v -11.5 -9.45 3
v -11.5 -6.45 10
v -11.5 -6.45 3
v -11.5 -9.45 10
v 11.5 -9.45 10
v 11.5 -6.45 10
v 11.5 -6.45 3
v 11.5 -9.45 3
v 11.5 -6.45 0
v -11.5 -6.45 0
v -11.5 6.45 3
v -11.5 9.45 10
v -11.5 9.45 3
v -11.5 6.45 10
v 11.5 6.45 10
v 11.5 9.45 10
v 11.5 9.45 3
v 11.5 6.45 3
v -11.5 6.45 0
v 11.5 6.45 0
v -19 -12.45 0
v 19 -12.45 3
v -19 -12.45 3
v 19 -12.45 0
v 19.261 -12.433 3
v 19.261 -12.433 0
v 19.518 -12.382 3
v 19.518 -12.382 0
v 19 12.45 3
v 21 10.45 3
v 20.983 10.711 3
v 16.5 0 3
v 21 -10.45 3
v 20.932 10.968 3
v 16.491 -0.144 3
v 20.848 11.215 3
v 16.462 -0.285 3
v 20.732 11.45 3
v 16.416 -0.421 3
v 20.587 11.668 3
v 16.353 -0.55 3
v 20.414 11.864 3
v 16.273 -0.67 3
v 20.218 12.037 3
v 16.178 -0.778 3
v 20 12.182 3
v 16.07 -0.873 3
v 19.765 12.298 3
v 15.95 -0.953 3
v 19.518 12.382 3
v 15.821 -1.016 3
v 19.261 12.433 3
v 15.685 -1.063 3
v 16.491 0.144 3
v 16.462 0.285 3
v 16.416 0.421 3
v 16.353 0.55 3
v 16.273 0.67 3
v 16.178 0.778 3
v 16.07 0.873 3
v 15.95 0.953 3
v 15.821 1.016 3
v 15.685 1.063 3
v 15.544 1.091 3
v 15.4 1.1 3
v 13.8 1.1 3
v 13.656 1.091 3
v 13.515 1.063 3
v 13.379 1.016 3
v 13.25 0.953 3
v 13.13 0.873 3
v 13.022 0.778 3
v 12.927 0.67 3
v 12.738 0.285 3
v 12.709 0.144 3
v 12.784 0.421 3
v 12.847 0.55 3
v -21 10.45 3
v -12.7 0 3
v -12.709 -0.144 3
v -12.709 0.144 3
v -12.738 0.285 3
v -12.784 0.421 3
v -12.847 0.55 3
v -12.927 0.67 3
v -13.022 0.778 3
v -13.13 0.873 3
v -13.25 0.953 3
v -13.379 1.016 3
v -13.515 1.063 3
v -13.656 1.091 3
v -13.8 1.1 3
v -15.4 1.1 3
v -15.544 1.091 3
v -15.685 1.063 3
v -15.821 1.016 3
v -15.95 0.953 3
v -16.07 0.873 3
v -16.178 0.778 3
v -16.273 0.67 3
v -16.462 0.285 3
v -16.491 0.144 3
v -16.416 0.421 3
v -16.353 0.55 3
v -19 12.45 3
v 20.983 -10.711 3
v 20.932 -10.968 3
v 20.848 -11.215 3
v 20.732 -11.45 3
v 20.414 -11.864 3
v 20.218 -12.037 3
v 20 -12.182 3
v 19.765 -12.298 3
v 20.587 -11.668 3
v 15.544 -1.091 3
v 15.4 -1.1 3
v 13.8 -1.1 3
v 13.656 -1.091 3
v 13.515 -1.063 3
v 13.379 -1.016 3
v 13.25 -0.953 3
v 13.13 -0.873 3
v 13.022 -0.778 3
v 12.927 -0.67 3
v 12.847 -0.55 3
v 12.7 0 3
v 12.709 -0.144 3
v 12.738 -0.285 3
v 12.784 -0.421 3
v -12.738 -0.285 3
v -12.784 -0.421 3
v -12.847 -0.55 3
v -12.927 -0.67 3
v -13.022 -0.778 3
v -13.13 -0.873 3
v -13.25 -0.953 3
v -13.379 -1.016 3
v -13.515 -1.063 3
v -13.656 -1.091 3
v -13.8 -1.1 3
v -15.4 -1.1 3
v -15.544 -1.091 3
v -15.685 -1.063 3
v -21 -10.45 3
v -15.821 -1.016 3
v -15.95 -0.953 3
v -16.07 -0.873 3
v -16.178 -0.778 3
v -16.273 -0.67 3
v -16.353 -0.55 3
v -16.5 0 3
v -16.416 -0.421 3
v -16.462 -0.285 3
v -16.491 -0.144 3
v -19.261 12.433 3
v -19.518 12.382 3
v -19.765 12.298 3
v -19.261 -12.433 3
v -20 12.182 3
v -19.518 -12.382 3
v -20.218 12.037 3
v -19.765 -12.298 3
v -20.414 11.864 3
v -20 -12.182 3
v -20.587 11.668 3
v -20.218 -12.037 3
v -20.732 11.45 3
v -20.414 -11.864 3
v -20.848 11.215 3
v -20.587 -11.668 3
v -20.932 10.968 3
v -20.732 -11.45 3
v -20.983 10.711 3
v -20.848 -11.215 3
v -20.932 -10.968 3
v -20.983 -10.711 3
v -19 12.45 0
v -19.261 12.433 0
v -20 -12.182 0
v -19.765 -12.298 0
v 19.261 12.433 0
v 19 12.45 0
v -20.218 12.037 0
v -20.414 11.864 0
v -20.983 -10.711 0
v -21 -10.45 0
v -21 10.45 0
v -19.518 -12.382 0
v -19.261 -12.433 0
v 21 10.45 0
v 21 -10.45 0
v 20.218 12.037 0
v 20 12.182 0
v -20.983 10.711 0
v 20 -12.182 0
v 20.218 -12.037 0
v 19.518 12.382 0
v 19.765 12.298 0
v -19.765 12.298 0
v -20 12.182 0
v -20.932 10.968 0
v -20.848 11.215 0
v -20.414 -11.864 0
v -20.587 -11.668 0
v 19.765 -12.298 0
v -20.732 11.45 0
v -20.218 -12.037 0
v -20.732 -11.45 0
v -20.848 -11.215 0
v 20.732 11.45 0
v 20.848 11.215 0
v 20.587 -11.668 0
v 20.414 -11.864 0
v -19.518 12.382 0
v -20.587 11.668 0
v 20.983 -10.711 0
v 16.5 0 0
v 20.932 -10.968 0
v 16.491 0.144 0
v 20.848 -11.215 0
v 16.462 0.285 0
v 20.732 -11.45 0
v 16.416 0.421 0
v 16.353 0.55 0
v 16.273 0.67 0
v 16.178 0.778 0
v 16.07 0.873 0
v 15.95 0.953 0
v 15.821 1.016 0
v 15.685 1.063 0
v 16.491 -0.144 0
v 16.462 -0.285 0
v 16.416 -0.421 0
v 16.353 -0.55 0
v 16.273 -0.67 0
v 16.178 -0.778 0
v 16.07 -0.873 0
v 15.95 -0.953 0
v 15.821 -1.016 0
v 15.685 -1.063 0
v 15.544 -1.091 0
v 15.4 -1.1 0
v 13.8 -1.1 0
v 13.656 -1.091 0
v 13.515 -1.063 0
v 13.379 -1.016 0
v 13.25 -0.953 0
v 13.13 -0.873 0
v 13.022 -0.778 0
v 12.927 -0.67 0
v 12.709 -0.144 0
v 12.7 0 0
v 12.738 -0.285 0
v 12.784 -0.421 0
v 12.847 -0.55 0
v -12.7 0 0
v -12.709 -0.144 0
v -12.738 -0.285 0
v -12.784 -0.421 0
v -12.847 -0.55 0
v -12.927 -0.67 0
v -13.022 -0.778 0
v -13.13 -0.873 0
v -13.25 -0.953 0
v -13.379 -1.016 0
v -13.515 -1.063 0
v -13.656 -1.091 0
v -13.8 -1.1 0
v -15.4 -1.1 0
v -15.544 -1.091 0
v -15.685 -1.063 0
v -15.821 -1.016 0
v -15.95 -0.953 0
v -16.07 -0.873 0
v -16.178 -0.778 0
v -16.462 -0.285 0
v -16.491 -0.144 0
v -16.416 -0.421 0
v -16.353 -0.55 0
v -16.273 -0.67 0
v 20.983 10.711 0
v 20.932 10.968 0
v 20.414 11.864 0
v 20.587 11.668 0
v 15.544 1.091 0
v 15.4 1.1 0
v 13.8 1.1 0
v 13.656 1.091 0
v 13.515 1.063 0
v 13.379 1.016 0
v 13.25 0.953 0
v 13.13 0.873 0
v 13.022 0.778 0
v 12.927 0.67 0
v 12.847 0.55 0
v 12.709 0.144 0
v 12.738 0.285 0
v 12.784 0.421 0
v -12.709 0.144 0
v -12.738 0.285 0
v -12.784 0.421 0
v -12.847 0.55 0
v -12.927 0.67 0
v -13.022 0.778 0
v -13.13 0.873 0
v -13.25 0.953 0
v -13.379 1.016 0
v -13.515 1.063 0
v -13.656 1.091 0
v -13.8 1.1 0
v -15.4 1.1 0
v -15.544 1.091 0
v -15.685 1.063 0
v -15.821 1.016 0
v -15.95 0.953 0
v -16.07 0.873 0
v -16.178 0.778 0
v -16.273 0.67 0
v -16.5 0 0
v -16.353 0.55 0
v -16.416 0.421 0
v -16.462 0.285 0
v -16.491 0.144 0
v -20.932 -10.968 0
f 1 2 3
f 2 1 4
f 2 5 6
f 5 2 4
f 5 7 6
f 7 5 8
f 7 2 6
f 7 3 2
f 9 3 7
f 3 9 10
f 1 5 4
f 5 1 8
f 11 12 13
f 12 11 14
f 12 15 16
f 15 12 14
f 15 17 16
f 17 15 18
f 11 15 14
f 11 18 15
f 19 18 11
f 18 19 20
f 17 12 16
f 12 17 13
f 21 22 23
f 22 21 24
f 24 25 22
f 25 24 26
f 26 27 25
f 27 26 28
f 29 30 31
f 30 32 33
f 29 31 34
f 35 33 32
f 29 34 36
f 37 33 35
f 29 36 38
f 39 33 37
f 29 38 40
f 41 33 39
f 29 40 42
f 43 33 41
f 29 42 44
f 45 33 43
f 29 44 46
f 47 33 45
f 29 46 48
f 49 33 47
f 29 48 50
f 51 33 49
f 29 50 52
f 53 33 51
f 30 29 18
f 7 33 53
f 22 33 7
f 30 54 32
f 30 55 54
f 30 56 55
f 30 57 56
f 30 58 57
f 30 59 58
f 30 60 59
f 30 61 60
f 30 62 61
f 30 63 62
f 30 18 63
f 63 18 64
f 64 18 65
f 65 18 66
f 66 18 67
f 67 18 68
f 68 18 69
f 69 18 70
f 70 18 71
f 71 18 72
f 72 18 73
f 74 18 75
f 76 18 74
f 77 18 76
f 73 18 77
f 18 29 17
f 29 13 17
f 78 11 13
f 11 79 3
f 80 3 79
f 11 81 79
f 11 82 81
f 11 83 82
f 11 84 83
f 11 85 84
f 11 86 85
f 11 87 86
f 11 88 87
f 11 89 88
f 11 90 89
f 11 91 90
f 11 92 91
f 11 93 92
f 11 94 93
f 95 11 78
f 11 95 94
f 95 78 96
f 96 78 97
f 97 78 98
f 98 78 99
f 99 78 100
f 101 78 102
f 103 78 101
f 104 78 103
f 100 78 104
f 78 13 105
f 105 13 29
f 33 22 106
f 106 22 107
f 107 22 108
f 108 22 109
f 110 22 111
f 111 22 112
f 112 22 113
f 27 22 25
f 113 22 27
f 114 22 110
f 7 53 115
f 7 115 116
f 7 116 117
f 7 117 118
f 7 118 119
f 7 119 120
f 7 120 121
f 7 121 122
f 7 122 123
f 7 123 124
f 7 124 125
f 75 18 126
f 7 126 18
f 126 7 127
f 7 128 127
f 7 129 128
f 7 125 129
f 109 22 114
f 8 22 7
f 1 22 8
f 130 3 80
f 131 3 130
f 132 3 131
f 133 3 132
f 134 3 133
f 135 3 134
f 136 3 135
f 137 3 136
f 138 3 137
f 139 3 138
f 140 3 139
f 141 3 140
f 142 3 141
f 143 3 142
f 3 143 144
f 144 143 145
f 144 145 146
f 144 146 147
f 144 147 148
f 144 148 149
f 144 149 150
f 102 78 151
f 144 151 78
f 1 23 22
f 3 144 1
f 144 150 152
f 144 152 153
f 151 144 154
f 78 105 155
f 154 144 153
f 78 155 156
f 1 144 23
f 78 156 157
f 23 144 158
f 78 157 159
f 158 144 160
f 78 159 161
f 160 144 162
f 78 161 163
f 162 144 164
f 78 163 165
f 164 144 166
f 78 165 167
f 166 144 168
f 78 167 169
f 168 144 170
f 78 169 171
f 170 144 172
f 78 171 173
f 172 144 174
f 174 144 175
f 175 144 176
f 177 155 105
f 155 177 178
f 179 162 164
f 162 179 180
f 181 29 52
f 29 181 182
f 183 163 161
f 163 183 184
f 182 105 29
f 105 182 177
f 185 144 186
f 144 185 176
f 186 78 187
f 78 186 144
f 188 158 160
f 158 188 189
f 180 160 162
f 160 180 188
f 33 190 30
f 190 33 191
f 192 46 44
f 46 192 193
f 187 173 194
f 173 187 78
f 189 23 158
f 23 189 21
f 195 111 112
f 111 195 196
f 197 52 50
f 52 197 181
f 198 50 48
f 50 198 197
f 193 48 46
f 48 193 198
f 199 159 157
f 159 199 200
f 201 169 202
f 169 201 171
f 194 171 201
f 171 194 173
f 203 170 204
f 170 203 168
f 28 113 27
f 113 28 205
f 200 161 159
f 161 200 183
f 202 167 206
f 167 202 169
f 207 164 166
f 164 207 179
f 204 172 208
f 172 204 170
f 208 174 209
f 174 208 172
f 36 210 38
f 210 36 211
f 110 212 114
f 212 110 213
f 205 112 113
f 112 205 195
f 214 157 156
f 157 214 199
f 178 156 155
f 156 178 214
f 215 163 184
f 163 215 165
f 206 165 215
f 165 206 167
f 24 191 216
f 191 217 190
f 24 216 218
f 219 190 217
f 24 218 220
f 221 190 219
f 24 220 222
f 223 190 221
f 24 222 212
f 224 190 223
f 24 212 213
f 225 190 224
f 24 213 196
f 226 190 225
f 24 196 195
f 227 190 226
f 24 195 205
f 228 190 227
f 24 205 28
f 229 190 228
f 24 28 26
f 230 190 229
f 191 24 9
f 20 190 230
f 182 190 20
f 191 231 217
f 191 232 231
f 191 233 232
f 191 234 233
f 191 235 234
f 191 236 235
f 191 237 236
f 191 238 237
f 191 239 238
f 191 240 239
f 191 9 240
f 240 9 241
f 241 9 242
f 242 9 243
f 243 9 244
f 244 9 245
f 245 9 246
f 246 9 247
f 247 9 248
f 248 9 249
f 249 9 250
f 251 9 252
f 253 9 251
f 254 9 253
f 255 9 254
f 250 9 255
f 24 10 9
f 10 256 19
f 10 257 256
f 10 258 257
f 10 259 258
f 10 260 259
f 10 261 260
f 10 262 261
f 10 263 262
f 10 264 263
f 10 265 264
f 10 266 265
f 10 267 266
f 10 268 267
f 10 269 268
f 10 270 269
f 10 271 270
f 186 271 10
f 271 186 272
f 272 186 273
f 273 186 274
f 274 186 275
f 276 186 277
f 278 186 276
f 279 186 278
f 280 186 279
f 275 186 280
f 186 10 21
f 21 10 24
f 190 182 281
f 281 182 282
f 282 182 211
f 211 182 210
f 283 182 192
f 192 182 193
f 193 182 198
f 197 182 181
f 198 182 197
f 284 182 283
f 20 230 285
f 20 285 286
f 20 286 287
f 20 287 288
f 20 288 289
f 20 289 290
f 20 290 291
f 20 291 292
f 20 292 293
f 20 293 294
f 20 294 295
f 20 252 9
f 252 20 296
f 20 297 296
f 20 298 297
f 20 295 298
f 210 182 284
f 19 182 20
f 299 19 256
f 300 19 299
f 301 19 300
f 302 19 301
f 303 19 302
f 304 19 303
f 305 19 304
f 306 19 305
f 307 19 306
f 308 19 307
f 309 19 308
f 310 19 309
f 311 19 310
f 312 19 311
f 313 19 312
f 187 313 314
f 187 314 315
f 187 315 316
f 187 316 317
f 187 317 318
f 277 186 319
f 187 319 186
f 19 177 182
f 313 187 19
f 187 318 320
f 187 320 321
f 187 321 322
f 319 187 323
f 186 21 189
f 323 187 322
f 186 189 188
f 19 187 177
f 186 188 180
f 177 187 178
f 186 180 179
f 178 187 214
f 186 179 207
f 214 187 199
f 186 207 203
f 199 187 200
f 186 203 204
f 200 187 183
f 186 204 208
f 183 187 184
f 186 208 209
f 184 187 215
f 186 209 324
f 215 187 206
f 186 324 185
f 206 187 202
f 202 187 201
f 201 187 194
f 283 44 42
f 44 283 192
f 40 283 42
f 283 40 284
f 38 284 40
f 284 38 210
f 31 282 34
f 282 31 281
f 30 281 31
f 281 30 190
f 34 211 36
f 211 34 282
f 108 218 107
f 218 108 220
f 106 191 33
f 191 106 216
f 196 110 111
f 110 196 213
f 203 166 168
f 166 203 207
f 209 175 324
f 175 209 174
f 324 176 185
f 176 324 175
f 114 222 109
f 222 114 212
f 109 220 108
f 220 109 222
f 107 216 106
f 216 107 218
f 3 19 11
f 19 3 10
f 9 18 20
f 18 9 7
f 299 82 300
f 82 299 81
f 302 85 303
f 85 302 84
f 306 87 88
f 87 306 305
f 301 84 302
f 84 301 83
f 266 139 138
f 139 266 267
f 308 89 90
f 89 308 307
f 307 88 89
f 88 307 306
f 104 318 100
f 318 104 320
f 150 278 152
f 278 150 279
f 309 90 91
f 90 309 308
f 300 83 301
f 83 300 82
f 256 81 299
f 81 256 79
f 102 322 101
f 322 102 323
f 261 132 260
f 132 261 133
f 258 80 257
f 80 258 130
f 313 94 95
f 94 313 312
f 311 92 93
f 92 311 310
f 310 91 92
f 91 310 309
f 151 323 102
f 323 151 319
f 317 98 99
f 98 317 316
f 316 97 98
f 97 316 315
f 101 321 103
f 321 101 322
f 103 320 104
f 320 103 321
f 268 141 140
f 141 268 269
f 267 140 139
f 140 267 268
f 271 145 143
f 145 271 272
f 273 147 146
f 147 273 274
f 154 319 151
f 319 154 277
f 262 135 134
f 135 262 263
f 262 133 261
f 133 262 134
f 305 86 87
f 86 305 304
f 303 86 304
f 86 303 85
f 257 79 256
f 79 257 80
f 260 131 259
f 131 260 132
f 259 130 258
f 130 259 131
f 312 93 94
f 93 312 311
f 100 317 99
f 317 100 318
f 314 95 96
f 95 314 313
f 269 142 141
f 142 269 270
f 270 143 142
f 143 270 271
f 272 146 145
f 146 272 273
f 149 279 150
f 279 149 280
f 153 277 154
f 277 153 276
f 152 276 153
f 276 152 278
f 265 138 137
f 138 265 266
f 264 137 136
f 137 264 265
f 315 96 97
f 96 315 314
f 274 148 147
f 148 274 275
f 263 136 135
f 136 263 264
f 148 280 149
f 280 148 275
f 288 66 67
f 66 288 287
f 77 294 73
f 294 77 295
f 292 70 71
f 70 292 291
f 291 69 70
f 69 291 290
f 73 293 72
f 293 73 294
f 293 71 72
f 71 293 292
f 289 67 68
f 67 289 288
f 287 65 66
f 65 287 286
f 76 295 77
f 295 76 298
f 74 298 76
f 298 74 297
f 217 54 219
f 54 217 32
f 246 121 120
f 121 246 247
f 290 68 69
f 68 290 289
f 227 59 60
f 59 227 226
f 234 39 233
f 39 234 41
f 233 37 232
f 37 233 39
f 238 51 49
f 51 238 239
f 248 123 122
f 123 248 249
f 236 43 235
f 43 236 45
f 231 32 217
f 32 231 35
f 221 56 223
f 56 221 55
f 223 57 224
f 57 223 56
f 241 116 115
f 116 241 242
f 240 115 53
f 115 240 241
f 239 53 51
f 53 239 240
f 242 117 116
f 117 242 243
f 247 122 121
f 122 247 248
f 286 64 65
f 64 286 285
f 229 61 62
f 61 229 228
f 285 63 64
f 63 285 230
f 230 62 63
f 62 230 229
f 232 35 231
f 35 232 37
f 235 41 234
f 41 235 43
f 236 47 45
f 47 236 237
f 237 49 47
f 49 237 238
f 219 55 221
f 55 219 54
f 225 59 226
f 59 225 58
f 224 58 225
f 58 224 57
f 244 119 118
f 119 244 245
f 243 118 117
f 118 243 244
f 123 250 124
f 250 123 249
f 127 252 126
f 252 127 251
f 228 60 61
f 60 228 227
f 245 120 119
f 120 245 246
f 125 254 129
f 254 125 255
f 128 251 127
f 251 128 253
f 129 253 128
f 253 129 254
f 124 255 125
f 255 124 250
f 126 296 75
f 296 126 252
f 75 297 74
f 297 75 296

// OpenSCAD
// WWZMDiB SG90 first cradle prototype. Millimeters.
// Opening from owner-confirmed two-dot gauge; see SERVO-DIMENSIONS.md.
// Print flange flat on bed. Turn over for use: ears rest on flat flange face.
$fn=48;
body_length=23.0;
body_width=12.9;
flange_length=42;
flange_width=24.9;
flange_thickness=3;
rail_thickness=3;
rail_depth=7;
slot_width=2.2; // prototype clearance, NOT a verified screw specification
slot_inner_center=13.8;
slot_outer_center=15.4;
module slot(side) {
 hull() for(x=[slot_inner_center,slot_outer_center])
  translate([side*x,0,-0.1]) cylinder(d=slot_width,h=flange_thickness+0.2);
}
difference() {
 union() {
  linear_extrude(flange_thickness)
   offset(r=2) offset(delta=-2) square([flange_length,flange_width],center=true);
  // Two short guide walls; open ends and bottom leave cable access.
  for(side=[-1,1])
   translate([-body_length/2,side>0?body_width/2:-body_width/2-rail_thickness,flange_thickness-0.1])
    cube([body_length,rail_thickness,rail_depth+0.1]);
 }
 translate([-body_length/2,-body_width/2,-0.1])
  cube([body_length,body_width,flange_thickness+rail_depth+0.2]);
 slot(-1); slot(1);
}
assert(body_length==23 && body_width==12.9,"Preserve confirmed two-dot fit");
assert(slot_inner_center-slot_width/2>body_length/2+1,"Keep material between slot and opening");
